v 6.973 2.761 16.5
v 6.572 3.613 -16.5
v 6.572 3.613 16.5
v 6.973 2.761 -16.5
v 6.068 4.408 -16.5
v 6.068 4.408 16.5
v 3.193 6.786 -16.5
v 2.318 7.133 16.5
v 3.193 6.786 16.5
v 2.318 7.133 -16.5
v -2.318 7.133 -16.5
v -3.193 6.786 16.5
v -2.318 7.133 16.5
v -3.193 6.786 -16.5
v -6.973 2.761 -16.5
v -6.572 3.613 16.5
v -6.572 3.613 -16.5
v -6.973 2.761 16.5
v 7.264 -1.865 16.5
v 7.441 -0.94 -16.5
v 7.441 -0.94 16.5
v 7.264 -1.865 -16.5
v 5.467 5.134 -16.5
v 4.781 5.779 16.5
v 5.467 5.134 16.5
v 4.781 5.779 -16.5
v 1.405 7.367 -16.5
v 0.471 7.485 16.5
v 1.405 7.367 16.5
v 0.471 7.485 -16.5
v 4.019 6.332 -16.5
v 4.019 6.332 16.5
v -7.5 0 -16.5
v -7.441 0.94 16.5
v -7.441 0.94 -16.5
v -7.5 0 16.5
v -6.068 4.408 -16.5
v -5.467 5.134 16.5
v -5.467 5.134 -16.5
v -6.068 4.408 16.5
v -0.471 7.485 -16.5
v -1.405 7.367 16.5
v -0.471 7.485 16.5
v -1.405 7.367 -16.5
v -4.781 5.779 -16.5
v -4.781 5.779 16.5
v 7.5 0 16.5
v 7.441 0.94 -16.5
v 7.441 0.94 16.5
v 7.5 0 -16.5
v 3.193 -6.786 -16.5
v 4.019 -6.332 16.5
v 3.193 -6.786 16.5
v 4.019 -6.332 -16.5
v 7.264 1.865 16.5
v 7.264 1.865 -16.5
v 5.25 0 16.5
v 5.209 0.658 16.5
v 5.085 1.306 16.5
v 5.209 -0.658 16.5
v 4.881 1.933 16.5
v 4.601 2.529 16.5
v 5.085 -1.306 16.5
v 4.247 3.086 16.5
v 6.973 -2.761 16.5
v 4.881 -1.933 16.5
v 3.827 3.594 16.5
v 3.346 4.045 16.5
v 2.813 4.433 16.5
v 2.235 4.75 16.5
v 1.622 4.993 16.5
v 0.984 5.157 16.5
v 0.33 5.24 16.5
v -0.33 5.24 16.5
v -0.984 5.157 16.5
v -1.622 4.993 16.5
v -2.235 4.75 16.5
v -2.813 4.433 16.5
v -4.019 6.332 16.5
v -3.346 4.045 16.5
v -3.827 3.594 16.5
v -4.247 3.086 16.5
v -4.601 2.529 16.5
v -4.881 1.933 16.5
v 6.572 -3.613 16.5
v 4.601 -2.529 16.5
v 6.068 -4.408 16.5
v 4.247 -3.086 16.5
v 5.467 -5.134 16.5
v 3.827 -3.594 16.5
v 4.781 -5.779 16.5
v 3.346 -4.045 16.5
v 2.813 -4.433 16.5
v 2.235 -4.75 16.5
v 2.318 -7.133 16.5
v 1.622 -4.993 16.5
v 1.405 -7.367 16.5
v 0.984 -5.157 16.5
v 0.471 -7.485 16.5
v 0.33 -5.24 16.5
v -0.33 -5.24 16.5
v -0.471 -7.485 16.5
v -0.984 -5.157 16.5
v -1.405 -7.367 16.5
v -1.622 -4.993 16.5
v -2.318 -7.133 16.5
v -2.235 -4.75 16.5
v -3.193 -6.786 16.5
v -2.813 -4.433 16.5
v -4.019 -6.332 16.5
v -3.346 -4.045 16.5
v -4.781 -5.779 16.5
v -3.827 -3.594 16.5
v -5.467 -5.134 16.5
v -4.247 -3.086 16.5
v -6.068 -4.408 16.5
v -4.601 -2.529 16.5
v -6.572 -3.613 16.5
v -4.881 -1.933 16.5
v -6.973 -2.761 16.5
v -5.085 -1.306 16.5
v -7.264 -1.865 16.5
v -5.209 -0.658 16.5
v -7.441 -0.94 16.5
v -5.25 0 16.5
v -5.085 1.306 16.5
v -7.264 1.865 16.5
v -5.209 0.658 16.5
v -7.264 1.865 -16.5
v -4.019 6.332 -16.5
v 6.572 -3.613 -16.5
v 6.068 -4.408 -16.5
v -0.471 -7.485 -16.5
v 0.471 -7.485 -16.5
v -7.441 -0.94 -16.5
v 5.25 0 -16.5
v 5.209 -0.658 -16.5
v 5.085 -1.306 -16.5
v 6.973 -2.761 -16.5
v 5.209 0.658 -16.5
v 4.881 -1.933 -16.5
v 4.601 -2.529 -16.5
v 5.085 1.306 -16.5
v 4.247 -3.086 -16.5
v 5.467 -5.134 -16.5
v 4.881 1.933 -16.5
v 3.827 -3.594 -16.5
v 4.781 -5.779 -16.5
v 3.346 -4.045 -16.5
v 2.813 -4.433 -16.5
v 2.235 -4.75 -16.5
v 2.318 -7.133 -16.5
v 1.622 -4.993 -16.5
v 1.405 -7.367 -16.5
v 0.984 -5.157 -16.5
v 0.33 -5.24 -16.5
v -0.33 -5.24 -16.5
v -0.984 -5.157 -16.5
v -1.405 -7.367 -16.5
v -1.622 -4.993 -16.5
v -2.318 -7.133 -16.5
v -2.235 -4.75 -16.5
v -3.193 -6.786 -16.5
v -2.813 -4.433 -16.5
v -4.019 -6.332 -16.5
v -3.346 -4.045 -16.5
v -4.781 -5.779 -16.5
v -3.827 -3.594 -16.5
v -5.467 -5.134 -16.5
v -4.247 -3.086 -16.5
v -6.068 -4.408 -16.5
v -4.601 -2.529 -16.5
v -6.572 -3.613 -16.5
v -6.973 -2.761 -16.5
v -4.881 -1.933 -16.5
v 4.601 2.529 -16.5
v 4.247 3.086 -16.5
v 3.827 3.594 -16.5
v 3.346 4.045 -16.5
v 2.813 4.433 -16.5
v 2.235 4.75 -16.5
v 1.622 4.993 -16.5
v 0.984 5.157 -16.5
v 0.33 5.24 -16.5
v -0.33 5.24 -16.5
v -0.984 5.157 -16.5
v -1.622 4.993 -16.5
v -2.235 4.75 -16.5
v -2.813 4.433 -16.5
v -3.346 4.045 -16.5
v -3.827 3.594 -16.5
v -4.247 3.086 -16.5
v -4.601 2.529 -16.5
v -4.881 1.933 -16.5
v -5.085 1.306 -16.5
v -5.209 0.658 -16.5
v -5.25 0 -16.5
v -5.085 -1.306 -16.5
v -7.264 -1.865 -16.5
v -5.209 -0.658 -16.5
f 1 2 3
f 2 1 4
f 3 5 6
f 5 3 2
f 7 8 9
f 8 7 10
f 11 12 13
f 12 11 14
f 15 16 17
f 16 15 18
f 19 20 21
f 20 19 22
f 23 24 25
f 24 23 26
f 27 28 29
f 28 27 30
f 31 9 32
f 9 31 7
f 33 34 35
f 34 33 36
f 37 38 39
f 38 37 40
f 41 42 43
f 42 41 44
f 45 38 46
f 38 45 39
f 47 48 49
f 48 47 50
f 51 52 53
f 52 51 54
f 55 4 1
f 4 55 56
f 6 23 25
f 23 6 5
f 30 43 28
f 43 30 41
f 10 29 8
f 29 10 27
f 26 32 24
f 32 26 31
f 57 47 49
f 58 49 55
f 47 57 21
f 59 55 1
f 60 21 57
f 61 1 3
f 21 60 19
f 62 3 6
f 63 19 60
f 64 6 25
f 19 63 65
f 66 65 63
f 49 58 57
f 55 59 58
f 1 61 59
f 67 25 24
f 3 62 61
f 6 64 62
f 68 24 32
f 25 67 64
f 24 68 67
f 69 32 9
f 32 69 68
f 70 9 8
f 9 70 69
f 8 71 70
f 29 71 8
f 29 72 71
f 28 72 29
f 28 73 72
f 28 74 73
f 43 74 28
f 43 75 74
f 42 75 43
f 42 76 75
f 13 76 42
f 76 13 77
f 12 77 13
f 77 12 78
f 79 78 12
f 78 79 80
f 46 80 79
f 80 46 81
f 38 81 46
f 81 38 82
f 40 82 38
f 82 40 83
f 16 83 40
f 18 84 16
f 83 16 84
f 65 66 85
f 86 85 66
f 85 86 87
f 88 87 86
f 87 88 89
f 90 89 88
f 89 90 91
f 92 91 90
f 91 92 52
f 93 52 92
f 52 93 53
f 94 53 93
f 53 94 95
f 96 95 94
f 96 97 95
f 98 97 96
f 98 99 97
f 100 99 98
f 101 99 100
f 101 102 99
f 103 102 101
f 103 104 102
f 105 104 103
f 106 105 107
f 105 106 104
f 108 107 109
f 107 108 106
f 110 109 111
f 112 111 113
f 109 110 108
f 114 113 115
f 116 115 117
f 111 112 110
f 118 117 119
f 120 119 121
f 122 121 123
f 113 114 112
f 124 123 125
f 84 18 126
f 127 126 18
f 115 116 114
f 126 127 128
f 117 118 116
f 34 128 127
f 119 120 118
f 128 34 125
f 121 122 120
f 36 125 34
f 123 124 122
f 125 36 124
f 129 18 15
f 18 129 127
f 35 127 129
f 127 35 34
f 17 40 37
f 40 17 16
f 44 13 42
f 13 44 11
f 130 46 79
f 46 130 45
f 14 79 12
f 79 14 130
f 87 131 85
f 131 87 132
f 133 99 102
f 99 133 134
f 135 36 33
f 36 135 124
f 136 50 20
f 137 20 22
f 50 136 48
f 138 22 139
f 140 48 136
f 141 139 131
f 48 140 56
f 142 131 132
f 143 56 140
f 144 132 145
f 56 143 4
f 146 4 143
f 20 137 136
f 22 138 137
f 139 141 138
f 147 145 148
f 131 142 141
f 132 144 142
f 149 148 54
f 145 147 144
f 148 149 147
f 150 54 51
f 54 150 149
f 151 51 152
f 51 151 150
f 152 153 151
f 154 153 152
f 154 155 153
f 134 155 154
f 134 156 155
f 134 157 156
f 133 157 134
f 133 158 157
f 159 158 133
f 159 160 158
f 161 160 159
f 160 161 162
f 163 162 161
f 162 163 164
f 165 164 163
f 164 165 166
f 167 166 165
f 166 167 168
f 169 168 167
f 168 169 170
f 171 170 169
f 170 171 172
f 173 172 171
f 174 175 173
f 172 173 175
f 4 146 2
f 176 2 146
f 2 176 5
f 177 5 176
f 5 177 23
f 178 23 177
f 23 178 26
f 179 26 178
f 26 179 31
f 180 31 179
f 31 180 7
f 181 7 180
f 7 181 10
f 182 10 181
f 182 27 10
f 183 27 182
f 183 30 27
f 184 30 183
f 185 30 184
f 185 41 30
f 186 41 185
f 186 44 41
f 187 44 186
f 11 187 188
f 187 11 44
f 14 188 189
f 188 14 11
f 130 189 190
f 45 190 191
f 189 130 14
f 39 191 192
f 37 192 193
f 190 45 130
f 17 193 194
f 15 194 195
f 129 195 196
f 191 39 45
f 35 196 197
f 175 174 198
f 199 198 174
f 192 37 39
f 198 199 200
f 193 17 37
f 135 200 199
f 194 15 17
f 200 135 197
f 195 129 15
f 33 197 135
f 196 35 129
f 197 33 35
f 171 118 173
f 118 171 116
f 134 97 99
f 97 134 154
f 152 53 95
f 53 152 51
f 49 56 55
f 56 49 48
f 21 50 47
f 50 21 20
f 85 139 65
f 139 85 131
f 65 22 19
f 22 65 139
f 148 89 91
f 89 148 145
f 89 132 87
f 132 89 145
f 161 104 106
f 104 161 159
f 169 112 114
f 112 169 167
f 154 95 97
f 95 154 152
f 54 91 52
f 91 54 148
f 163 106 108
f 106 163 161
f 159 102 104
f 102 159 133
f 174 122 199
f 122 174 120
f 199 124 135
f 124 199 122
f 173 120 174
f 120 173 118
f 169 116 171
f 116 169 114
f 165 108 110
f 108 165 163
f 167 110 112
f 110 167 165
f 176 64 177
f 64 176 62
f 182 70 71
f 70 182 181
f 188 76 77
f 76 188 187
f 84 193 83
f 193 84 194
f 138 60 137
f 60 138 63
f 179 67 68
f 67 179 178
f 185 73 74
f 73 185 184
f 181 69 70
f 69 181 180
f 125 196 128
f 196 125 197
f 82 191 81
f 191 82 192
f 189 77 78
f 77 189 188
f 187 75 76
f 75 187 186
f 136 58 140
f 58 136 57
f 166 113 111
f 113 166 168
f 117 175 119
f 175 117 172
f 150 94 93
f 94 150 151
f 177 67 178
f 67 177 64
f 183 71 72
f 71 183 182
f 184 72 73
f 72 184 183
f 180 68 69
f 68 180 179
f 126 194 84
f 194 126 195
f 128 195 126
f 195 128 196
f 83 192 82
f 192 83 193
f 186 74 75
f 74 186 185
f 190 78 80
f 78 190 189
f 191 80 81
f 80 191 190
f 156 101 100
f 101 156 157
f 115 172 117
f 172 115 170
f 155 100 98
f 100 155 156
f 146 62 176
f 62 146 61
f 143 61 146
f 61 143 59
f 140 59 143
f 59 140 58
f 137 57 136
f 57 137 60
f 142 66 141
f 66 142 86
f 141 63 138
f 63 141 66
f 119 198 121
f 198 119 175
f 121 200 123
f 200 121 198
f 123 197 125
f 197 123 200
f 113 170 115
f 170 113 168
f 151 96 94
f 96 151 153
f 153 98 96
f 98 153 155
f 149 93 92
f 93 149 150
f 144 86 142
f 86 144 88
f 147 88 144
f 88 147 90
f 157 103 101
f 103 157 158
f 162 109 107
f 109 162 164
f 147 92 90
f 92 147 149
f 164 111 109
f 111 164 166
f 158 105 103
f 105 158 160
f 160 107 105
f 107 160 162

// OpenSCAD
$fn = 50;


difference() {
	union() {
		translate(v = [0, 0, -16.5000000000]) {
			cylinder(h = 33, r = 7.5000000000);
		}
	}
	union() {
		translate(v = [0, 0, -100.0000000000]) {
			cylinder(h = 200, r = 5.2500000000);
		}
	}
}
